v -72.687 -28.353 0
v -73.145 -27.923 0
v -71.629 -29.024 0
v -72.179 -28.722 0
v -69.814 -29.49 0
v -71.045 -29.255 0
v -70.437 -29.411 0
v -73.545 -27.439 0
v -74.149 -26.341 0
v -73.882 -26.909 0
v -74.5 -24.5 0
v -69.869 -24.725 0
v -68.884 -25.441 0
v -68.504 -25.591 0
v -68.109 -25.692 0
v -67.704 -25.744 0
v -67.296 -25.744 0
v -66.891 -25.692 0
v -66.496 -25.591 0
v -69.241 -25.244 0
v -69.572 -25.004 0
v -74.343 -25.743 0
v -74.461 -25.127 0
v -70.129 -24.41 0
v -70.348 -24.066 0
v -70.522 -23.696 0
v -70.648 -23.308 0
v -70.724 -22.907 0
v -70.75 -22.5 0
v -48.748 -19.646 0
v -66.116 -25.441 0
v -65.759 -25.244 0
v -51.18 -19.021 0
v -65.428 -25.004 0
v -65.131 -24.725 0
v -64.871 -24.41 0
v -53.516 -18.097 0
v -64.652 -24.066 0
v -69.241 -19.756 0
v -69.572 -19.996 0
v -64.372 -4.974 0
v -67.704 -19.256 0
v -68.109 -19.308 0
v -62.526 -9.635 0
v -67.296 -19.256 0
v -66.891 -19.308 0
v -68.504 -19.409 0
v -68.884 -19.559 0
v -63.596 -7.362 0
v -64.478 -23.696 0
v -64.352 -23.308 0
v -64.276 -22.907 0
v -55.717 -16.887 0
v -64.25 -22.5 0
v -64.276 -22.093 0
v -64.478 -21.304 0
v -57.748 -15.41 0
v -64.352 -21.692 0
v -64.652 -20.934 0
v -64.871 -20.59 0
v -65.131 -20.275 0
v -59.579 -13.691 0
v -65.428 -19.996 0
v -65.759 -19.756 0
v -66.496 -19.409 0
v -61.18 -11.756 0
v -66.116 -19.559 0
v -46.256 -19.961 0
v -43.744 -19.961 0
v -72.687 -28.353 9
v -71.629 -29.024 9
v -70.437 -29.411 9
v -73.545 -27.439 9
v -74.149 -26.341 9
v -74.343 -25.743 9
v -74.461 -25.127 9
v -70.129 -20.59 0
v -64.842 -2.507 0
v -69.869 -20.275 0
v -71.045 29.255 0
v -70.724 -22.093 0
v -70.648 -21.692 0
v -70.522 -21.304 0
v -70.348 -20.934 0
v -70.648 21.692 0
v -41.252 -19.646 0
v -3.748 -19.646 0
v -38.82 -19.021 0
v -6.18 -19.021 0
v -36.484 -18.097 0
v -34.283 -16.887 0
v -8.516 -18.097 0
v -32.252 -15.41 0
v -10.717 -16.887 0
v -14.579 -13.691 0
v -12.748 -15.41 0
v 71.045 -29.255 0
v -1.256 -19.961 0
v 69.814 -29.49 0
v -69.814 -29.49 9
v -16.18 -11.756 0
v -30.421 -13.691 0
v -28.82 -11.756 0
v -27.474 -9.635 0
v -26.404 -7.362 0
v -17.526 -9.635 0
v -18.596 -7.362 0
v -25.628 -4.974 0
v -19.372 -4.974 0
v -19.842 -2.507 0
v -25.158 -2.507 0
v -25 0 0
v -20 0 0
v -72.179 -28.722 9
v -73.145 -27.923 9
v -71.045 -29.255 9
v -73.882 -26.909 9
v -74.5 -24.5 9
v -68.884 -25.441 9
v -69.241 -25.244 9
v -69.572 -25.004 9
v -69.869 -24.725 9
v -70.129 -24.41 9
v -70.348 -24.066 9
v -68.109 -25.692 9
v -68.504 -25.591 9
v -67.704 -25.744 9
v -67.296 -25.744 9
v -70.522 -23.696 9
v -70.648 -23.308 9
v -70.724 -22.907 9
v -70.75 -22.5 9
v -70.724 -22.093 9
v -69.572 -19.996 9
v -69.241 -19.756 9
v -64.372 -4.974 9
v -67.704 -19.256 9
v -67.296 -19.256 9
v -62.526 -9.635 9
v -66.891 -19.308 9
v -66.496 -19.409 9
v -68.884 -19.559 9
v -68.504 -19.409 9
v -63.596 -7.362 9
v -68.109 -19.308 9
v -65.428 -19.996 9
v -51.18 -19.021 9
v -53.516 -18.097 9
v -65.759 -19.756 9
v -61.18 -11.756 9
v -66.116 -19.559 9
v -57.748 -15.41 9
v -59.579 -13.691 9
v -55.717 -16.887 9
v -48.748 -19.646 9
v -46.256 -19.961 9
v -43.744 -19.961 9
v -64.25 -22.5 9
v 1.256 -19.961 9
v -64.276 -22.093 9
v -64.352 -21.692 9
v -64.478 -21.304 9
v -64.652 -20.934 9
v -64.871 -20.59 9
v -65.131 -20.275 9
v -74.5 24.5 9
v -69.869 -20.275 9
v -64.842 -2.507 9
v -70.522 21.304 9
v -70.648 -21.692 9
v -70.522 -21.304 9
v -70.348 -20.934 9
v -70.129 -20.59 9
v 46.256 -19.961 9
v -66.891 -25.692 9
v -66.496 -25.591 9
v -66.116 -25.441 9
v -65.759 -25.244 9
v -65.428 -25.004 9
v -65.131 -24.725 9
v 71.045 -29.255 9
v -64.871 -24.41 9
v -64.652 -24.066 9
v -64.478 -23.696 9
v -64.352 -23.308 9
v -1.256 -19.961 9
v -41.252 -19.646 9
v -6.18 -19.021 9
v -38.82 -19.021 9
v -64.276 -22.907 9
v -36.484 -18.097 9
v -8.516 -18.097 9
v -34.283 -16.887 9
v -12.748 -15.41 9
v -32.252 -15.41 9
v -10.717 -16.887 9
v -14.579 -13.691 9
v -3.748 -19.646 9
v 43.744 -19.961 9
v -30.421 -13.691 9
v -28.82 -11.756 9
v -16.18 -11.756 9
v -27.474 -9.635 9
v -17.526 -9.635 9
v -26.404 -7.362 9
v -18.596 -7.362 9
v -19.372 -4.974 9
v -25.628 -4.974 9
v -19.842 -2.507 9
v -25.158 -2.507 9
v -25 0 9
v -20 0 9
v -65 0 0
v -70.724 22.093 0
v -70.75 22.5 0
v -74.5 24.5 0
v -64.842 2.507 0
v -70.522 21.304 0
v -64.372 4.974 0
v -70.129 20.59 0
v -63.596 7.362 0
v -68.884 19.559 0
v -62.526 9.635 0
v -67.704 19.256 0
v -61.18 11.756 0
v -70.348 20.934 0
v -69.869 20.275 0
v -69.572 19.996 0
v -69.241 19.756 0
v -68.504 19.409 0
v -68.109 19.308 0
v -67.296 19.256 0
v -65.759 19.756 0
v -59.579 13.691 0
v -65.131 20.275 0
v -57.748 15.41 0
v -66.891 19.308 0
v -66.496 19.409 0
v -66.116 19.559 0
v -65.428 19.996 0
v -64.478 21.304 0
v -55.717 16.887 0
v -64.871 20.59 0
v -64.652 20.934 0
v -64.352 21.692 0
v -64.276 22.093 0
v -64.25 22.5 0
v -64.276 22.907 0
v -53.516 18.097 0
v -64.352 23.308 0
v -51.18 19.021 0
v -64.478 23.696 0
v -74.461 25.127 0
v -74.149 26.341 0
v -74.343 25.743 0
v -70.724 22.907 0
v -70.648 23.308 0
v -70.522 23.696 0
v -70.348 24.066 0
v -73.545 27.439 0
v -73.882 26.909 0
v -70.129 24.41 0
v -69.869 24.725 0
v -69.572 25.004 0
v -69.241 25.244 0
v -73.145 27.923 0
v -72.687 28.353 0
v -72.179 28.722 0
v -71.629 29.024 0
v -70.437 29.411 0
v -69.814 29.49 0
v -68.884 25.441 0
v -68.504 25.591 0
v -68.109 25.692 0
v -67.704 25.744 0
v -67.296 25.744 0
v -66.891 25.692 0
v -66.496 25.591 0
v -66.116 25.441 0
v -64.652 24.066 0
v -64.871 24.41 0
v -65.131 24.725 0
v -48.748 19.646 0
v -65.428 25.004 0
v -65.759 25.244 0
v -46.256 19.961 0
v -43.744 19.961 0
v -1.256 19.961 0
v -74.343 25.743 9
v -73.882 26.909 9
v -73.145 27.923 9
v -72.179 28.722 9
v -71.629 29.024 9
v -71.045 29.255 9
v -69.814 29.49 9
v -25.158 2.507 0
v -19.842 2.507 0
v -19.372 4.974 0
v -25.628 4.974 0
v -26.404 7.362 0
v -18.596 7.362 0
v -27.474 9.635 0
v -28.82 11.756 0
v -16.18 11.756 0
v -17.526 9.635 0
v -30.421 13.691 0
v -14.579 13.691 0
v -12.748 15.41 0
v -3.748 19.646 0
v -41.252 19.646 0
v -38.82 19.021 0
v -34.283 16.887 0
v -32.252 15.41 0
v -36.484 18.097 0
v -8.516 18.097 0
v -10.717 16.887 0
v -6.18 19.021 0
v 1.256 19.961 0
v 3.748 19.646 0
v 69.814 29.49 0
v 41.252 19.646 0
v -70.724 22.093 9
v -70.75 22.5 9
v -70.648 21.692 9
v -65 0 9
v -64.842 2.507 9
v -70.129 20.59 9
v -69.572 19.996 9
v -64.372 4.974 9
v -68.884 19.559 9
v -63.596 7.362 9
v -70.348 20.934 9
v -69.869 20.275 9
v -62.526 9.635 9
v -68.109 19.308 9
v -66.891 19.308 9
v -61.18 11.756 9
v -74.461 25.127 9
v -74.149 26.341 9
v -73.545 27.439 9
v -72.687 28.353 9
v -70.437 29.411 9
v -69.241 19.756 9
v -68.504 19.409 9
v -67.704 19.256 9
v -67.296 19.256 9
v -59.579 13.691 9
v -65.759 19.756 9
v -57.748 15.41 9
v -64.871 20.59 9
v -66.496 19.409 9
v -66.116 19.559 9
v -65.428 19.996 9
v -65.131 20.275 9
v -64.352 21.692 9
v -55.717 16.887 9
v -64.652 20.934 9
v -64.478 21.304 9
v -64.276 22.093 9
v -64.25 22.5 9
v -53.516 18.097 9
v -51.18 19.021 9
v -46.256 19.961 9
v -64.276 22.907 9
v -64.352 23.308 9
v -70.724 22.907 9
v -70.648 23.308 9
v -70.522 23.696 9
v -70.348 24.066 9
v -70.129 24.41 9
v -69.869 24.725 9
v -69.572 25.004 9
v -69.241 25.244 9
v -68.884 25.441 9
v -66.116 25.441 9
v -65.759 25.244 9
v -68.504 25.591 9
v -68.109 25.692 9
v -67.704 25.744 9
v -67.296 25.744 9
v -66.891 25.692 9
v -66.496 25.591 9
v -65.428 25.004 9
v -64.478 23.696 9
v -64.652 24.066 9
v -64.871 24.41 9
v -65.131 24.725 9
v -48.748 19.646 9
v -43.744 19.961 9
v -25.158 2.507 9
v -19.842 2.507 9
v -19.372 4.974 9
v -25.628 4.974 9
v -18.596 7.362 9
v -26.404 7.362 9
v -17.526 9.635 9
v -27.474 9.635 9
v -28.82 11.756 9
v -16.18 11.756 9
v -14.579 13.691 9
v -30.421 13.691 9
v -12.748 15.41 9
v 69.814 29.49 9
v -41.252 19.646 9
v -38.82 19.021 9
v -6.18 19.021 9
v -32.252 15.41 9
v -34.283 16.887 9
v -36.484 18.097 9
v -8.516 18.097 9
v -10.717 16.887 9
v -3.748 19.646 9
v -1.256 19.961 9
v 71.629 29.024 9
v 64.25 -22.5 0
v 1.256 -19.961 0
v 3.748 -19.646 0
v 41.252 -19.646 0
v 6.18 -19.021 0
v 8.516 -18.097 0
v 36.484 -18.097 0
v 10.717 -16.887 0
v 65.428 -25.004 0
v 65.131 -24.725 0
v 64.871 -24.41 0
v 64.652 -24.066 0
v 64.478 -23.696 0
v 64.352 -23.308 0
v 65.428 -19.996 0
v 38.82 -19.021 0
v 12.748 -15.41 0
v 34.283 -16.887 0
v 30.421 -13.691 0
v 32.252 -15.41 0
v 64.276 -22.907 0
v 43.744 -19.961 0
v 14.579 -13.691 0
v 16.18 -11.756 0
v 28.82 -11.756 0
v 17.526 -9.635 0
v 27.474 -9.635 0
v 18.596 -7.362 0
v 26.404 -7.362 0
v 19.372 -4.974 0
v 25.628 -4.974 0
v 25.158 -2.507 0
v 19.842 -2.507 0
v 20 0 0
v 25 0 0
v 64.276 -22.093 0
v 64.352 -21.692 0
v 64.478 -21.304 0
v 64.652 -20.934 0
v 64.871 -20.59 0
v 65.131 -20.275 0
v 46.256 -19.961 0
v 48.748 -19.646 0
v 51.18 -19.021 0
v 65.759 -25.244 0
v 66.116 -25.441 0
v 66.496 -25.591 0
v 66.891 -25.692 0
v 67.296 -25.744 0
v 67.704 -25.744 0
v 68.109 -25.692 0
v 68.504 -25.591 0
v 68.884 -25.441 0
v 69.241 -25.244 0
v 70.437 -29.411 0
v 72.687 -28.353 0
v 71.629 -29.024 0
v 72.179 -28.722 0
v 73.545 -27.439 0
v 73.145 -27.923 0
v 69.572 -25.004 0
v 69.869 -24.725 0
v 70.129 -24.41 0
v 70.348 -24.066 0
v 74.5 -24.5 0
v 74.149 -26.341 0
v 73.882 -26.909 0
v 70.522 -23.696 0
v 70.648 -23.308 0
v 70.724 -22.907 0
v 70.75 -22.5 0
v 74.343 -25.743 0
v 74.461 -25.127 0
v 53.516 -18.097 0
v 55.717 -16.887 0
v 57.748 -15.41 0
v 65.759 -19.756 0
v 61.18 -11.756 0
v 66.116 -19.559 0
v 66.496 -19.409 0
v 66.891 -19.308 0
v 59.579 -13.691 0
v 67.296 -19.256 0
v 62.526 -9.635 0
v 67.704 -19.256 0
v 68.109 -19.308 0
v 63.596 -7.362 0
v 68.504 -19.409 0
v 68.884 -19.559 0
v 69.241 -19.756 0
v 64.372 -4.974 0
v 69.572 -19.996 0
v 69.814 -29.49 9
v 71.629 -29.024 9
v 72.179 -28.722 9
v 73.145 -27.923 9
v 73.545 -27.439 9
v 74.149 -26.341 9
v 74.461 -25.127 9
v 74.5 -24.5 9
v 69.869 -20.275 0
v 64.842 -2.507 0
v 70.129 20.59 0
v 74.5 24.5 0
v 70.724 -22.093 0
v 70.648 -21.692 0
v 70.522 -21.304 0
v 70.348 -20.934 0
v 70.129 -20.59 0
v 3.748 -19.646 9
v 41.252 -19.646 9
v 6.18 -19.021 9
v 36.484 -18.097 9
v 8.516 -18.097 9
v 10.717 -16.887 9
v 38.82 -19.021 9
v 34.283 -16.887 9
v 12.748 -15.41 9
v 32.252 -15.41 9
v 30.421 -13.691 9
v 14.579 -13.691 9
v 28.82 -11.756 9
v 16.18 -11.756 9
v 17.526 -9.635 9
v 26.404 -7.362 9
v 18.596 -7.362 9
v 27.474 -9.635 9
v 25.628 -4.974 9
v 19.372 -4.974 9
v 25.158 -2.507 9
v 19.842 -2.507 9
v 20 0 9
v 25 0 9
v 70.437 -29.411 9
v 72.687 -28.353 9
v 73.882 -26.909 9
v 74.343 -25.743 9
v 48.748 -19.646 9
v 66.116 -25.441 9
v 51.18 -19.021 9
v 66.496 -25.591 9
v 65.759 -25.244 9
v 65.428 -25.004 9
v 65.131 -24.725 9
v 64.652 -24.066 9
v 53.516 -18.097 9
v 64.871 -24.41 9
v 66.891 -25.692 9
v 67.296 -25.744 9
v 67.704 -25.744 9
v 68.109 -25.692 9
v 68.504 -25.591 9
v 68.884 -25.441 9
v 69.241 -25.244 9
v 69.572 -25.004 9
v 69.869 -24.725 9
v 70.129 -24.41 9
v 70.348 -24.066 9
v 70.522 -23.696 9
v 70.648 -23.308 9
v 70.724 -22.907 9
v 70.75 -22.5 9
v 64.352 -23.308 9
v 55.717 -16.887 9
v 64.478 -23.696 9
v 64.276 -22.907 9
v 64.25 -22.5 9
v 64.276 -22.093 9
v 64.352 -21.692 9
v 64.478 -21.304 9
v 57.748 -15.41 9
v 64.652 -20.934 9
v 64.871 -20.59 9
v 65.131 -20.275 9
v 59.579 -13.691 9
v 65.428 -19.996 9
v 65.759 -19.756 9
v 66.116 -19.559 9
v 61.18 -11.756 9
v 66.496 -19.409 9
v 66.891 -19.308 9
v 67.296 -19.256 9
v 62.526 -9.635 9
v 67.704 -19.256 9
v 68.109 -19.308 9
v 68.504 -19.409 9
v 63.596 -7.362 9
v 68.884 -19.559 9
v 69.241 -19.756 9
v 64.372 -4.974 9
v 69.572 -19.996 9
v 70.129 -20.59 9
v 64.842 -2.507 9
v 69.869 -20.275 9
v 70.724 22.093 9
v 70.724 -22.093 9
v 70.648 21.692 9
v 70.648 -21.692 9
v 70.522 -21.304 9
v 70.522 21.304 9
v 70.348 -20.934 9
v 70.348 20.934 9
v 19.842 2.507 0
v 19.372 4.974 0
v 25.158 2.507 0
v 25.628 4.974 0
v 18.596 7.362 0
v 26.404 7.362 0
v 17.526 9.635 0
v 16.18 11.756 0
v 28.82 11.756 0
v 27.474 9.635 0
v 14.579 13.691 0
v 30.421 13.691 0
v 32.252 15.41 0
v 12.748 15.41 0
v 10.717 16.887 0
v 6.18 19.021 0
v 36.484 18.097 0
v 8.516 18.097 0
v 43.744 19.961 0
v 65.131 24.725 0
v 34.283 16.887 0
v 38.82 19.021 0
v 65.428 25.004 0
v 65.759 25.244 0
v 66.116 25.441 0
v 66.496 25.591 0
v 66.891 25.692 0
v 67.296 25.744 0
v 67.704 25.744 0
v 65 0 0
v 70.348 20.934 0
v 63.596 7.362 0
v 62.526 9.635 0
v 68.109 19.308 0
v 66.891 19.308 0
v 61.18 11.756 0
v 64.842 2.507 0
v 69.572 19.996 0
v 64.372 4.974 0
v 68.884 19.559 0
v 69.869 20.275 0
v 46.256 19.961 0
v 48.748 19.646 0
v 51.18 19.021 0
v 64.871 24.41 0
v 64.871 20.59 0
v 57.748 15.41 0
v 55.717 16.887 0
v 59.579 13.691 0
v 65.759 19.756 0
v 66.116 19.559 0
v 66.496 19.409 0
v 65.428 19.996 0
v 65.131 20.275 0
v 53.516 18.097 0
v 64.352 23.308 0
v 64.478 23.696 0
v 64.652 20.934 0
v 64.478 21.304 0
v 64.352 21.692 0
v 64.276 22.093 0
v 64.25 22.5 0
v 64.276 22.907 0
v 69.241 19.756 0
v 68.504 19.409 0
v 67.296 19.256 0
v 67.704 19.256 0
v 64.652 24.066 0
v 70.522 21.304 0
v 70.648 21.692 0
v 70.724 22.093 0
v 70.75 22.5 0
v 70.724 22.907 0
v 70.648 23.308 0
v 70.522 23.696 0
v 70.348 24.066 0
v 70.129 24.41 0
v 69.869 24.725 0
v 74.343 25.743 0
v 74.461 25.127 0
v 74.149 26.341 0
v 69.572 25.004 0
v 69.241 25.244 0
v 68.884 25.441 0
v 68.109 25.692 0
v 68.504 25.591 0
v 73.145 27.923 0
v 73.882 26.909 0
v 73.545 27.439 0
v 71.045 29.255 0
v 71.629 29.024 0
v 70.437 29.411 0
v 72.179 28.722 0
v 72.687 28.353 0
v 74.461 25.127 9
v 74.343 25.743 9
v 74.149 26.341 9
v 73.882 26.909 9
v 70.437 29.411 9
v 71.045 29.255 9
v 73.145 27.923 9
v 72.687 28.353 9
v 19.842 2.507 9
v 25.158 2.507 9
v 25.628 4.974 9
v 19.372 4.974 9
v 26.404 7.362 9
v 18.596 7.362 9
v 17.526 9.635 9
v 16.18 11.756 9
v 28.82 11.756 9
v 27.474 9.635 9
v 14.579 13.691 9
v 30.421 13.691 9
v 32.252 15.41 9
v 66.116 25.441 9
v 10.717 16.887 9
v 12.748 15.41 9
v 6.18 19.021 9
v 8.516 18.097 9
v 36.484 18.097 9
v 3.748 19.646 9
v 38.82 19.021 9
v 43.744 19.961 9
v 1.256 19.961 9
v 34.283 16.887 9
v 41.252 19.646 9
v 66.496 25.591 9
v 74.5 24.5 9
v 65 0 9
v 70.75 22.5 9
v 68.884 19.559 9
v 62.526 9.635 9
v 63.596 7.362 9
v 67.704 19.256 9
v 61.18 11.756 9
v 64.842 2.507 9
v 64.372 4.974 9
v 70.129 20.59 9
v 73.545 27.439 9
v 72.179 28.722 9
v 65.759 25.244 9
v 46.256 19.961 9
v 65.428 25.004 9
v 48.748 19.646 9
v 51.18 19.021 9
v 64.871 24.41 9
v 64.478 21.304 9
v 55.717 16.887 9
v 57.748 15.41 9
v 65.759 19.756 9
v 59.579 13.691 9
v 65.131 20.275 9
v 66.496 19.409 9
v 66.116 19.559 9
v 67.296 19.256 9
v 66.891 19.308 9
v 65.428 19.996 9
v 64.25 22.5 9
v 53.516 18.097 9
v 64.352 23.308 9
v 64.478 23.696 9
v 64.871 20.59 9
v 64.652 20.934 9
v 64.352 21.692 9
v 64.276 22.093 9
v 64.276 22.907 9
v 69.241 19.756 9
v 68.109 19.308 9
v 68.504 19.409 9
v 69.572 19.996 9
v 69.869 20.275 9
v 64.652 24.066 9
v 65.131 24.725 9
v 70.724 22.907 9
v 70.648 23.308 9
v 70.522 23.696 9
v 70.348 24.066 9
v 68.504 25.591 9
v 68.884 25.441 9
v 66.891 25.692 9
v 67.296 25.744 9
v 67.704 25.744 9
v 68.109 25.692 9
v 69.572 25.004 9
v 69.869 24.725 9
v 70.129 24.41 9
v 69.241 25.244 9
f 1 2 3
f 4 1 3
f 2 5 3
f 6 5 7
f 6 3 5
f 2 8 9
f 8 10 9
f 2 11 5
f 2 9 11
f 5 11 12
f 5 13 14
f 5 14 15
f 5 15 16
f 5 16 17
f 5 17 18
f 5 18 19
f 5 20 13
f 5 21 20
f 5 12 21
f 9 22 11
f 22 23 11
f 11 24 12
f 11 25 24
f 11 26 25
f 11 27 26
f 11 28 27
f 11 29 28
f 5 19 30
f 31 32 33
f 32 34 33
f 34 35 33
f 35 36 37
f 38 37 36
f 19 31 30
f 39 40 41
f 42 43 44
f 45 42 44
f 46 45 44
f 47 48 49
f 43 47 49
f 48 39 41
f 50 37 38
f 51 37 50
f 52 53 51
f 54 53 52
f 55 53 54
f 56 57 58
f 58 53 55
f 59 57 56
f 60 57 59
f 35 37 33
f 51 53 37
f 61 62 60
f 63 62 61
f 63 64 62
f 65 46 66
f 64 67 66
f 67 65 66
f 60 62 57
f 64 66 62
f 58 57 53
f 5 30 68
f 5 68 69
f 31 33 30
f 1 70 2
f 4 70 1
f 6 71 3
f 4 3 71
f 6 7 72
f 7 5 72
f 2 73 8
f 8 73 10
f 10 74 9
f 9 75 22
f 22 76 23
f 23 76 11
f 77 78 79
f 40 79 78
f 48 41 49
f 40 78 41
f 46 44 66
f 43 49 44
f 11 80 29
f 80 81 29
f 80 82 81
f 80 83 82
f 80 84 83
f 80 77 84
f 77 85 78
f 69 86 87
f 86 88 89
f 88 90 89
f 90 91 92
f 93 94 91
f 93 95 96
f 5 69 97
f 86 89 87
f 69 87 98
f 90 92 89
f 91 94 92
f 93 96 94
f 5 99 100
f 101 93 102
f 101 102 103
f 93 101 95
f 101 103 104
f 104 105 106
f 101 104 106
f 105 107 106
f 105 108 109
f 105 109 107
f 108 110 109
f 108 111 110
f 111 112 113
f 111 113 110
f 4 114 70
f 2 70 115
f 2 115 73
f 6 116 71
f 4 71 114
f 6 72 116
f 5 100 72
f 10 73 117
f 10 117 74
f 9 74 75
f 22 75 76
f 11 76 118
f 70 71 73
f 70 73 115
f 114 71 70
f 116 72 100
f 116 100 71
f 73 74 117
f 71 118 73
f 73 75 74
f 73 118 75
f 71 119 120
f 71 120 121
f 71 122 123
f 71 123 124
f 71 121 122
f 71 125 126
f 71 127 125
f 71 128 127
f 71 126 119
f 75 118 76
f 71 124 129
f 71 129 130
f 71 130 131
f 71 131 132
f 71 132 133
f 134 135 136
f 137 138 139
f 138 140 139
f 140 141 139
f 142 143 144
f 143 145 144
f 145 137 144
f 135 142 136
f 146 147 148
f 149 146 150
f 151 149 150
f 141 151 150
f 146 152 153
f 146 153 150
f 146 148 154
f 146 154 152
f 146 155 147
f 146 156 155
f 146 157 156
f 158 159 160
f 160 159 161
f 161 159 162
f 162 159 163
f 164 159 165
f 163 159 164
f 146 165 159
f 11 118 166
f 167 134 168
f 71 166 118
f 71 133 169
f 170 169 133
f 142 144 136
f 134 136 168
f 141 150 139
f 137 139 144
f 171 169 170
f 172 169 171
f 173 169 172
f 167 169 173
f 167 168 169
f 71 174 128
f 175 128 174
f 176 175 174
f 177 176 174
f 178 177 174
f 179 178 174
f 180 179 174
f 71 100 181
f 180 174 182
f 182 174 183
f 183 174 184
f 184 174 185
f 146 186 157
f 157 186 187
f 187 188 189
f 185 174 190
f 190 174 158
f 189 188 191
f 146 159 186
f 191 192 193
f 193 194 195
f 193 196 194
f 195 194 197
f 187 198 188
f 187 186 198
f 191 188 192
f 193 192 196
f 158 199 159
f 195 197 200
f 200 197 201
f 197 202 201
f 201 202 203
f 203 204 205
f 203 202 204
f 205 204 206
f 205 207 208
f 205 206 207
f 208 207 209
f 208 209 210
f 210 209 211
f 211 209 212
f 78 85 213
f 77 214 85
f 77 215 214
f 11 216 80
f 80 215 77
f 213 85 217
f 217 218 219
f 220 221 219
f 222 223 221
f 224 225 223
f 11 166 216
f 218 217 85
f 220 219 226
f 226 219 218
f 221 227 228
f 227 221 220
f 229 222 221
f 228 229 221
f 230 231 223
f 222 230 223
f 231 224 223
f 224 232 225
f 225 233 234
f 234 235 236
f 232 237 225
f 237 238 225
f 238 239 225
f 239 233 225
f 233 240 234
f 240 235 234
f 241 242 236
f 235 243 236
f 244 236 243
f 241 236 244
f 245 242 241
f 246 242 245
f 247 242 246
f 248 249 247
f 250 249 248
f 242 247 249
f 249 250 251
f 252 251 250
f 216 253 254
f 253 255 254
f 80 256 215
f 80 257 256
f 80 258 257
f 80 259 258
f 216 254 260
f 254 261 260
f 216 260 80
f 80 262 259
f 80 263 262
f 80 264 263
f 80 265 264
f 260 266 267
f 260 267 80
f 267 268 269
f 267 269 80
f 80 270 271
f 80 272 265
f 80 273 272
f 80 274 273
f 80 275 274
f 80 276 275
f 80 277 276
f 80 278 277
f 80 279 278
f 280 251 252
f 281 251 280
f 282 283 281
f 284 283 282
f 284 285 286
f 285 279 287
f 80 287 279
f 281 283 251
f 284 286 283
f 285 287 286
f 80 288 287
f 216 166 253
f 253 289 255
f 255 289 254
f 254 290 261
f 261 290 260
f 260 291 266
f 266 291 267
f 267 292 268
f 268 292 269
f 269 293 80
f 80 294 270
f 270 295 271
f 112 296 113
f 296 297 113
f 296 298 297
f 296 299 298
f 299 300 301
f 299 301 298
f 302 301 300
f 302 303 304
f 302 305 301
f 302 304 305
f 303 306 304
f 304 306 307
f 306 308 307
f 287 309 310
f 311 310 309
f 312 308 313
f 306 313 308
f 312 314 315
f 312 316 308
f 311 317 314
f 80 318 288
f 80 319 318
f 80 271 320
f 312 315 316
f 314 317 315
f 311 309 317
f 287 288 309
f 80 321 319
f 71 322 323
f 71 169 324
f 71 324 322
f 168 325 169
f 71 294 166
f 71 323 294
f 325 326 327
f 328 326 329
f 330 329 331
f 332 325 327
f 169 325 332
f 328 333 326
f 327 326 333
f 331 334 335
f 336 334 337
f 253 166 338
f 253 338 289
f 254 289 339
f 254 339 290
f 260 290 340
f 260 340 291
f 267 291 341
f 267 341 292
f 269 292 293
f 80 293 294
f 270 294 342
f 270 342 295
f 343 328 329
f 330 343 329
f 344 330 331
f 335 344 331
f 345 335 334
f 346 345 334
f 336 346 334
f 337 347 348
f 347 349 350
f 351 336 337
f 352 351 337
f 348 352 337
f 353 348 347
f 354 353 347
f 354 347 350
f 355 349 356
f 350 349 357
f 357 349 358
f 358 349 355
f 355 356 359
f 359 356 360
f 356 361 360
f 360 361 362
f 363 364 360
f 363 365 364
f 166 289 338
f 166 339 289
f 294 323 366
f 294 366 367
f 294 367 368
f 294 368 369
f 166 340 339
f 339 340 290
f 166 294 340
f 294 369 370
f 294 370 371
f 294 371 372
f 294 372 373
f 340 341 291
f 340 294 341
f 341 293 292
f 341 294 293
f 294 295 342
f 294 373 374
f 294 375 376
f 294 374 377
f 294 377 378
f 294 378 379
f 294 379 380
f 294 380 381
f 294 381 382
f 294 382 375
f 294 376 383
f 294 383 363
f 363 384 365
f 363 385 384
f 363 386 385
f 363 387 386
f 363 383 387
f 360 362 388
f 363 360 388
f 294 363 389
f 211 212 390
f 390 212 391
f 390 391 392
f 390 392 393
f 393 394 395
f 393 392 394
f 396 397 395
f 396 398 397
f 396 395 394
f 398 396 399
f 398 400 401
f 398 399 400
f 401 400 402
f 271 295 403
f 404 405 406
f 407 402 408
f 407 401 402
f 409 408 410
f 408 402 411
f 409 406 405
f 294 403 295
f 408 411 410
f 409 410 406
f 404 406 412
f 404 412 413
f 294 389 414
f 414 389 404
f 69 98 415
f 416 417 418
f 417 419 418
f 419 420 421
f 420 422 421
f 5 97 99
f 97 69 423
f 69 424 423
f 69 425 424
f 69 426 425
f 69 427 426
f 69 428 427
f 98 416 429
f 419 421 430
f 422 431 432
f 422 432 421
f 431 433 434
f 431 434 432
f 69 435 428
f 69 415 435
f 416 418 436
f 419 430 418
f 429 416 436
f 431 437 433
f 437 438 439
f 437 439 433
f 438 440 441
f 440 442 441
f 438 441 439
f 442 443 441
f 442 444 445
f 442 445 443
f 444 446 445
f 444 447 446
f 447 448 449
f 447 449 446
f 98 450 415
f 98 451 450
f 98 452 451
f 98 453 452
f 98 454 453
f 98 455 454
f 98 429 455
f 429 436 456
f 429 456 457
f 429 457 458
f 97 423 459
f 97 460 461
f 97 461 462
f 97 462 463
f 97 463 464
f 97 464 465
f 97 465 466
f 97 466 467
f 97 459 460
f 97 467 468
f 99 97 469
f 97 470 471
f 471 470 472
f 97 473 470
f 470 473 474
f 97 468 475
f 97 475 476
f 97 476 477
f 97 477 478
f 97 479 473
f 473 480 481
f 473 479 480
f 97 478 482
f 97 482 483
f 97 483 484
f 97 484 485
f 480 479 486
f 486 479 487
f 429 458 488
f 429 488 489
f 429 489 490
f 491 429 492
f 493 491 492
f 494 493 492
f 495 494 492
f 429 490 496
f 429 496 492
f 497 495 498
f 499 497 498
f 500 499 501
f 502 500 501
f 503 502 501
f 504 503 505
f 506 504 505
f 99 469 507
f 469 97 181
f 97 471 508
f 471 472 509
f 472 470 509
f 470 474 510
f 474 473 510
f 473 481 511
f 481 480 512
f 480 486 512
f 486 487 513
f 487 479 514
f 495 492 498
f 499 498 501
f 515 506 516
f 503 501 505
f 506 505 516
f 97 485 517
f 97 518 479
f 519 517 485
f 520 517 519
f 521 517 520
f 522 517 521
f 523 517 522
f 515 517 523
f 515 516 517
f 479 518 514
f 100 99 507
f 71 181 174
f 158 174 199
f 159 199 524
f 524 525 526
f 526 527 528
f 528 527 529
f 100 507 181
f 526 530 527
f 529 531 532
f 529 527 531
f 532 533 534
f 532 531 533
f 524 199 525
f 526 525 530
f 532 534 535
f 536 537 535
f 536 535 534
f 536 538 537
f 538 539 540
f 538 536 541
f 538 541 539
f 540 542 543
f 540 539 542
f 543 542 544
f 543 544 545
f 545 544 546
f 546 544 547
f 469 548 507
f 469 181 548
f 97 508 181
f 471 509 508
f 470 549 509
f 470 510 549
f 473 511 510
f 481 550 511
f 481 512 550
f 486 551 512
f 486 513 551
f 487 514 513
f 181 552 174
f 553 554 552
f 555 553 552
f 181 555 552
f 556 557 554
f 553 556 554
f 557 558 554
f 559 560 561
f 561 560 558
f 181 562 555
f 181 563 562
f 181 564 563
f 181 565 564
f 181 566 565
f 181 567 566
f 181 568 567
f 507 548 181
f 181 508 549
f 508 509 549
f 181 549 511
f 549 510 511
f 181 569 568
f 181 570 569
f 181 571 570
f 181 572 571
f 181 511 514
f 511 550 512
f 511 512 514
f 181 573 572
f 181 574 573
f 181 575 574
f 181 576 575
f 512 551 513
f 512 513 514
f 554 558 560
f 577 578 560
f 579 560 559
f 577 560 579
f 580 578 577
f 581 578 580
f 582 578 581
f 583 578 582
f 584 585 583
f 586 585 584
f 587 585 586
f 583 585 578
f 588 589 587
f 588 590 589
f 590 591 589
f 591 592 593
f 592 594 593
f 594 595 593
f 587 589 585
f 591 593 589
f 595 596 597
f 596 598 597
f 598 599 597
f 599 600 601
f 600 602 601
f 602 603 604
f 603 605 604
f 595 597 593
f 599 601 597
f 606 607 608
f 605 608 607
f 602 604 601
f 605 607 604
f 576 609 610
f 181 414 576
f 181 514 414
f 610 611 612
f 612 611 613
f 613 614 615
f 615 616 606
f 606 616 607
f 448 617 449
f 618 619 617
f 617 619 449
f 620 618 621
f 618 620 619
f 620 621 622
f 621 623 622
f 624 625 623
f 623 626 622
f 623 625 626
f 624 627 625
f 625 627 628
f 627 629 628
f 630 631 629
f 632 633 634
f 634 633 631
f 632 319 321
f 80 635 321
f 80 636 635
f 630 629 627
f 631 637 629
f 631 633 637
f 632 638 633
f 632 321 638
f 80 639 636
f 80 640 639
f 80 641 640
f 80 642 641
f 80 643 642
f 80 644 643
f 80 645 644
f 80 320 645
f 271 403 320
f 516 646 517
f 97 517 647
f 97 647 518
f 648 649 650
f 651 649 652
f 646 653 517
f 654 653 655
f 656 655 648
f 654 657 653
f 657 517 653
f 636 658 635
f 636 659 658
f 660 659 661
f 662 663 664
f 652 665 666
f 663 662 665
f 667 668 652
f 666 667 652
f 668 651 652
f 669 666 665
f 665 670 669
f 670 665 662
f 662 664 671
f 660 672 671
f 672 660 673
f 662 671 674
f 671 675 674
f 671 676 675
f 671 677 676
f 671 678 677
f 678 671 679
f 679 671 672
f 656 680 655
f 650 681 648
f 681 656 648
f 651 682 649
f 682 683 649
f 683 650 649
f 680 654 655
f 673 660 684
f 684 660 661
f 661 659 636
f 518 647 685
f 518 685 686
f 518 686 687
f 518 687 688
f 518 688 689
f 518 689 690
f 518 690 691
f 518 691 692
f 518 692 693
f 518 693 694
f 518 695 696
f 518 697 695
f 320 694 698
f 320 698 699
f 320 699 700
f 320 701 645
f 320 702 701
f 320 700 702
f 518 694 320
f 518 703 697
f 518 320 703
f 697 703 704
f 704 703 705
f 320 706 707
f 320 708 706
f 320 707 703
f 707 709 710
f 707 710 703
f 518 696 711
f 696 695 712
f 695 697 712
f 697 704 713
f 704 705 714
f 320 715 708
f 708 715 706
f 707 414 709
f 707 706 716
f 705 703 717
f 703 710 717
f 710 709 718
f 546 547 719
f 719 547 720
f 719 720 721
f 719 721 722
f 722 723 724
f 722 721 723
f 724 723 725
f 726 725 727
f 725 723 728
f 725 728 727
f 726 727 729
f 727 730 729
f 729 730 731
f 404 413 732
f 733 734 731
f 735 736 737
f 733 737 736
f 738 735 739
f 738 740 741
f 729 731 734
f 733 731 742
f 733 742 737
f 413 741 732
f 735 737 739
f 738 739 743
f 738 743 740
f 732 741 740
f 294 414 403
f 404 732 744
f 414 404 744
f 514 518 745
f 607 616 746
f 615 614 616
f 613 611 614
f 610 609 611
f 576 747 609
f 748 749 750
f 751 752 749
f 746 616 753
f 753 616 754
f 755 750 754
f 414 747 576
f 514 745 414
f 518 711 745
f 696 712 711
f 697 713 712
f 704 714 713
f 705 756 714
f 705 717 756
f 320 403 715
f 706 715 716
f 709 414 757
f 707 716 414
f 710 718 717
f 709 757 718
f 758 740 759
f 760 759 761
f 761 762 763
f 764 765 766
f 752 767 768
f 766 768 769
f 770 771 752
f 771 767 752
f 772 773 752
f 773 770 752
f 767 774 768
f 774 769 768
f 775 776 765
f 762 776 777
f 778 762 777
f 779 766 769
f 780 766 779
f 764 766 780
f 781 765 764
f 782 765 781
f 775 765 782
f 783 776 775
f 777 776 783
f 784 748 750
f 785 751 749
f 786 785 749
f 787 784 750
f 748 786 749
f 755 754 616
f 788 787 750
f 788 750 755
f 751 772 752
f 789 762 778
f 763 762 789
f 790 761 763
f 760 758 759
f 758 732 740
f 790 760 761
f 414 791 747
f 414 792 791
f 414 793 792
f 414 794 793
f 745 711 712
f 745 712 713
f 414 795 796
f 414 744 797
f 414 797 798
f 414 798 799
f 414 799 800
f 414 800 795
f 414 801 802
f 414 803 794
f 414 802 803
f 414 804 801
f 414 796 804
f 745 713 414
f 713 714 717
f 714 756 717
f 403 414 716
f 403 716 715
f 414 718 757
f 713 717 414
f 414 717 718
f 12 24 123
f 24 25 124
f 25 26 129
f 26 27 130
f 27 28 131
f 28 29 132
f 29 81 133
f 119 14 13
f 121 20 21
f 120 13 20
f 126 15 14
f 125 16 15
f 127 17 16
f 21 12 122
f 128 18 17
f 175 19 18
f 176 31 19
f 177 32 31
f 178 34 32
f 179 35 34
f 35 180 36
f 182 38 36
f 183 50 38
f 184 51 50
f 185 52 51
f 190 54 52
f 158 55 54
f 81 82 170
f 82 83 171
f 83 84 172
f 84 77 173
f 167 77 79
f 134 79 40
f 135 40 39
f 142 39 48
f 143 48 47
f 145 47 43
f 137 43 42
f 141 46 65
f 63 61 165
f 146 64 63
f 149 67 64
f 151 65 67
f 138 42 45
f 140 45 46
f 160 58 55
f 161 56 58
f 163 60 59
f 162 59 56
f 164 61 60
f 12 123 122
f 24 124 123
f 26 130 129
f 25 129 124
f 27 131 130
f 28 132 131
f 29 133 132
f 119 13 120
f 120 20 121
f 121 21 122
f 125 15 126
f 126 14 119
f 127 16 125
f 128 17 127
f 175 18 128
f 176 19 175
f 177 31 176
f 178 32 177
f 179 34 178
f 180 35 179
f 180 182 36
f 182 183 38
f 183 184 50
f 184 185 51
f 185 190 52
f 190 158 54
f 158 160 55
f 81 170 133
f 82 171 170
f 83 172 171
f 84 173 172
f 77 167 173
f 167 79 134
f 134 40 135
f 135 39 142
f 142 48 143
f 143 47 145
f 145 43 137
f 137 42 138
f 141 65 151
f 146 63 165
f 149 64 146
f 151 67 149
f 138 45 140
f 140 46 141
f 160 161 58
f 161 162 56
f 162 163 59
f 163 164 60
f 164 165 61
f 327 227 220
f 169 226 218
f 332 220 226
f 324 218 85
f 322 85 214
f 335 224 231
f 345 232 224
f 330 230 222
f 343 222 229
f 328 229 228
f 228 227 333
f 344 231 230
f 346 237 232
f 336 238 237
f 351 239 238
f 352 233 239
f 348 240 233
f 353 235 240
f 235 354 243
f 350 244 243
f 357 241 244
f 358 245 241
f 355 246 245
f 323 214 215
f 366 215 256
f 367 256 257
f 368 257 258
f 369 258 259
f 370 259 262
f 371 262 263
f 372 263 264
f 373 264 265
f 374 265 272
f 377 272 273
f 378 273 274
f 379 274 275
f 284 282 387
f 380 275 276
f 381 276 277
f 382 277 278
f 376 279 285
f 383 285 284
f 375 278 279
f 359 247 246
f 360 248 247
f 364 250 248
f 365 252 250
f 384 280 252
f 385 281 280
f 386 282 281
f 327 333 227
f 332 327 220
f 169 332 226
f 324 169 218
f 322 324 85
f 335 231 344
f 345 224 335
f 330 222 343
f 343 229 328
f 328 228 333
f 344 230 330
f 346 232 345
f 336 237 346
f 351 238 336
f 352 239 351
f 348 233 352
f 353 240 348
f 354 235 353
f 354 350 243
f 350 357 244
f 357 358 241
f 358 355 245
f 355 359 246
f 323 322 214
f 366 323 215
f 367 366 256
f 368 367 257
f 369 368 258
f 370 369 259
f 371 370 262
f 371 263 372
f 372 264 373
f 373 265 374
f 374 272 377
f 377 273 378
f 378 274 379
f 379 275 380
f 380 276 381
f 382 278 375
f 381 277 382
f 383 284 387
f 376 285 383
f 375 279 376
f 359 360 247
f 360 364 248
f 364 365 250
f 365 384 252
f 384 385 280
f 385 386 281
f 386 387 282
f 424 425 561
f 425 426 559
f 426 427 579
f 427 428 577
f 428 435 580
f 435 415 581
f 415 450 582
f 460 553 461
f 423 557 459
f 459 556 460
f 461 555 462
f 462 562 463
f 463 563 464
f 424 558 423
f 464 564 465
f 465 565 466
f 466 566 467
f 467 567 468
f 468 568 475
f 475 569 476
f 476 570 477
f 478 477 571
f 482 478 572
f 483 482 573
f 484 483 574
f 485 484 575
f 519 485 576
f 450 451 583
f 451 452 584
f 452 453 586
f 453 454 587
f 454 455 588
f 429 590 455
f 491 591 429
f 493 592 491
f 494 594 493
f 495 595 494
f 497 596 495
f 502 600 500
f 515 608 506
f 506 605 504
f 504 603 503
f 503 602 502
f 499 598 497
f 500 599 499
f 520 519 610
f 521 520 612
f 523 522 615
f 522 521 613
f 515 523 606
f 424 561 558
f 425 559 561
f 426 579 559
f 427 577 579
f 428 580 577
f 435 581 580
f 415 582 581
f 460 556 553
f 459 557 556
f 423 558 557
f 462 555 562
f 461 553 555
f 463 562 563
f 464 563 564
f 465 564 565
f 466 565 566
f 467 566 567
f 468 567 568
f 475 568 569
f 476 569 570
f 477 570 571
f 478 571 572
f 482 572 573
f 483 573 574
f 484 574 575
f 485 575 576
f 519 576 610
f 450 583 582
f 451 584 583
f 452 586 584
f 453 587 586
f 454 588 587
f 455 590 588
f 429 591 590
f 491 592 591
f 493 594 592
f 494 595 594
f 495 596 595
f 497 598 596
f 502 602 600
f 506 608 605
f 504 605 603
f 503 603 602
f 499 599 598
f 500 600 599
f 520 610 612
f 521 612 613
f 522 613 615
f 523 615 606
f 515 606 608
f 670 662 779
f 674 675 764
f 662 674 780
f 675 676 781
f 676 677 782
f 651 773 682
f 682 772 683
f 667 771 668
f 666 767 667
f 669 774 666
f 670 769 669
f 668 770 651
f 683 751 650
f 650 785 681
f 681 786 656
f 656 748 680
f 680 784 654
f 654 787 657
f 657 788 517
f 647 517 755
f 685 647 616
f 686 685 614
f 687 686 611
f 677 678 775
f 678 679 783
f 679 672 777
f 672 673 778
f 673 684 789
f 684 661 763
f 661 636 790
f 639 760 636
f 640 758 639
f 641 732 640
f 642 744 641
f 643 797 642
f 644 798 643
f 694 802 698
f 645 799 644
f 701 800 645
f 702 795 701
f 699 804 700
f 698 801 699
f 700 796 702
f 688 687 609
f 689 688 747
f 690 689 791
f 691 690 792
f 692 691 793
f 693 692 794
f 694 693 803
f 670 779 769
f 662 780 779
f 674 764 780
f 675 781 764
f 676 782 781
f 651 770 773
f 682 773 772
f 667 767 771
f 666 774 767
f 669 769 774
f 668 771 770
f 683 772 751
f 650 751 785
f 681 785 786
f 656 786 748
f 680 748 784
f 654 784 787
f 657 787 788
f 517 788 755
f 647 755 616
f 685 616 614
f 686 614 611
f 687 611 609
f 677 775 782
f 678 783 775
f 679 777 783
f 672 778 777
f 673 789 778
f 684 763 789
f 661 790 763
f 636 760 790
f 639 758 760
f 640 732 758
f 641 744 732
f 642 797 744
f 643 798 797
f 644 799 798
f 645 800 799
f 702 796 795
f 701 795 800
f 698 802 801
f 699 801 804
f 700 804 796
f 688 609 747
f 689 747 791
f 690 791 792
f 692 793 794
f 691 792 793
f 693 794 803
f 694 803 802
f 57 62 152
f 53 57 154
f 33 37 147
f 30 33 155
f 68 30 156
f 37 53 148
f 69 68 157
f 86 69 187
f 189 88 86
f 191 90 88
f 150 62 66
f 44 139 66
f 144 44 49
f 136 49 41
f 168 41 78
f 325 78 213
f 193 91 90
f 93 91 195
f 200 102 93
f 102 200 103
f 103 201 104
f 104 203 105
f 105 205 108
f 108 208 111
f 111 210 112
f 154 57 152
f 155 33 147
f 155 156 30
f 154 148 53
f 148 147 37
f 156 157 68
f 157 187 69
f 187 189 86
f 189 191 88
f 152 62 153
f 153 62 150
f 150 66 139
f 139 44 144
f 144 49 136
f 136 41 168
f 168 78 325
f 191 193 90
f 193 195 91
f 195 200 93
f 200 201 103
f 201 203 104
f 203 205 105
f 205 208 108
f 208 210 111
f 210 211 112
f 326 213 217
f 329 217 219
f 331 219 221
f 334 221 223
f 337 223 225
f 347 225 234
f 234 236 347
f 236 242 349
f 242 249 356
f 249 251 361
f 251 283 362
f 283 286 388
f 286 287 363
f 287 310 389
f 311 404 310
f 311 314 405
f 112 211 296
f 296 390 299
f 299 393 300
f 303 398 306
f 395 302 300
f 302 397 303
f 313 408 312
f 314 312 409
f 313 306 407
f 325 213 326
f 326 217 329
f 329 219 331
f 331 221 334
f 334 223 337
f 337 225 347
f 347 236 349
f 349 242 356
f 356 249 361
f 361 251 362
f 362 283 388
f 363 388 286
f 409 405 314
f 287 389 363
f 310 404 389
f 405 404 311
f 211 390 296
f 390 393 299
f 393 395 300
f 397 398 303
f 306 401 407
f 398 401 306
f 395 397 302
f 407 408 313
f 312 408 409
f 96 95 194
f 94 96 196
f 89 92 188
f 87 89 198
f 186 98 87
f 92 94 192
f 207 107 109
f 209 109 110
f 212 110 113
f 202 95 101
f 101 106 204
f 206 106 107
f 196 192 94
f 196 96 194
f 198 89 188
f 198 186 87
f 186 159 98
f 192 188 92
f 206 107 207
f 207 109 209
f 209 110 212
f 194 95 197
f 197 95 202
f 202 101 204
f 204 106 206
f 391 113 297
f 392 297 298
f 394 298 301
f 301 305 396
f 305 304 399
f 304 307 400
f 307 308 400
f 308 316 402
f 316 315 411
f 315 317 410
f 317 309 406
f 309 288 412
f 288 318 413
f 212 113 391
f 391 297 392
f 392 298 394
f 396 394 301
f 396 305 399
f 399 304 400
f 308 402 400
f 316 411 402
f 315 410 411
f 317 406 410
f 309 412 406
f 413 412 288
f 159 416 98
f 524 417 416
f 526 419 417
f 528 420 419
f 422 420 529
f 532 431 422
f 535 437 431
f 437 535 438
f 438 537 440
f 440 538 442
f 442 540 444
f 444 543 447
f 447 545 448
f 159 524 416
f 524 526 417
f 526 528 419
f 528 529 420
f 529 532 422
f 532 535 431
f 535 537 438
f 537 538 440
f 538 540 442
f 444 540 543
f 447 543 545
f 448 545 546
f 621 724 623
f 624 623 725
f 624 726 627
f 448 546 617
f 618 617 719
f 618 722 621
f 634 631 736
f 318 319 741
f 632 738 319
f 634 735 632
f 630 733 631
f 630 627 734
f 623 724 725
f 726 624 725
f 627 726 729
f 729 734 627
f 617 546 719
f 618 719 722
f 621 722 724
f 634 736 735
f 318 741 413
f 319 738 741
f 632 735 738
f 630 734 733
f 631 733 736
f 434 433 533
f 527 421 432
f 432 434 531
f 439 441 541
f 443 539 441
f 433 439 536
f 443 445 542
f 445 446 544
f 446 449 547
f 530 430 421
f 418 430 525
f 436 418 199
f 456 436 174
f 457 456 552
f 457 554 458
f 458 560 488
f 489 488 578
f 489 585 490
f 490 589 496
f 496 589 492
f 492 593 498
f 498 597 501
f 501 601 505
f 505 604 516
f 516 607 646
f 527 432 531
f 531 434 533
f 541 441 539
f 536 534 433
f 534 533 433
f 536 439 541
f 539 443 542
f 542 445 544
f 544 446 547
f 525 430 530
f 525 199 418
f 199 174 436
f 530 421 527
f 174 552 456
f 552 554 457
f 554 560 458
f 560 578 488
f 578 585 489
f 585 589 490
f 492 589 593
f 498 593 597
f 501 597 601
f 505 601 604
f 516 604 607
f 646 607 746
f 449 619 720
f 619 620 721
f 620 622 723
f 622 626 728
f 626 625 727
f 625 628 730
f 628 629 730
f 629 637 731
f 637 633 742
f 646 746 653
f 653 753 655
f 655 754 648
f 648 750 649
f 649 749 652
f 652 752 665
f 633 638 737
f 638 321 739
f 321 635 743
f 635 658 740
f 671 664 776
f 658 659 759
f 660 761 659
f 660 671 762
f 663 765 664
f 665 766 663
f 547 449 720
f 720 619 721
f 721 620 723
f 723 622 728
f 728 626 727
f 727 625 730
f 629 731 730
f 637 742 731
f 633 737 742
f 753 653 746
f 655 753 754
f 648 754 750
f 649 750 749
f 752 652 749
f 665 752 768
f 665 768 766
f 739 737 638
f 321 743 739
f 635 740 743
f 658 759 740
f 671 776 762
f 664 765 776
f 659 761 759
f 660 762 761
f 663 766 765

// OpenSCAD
$fn = 50;

difference() {
	union() {
		hull() {
			translate(v = [-69.5, 24.5, 0]) {
				cylinder(h = 9, r = 5);
			}
			translate(v = [69.5, 24.5, 0]) {
				cylinder(h = 9, r = 5);
			}
			translate(v = [-69.5, -24.5, 0]) {
				cylinder(h = 9, r = 5);
			}
			translate(v = [69.5, -24.5, 0]) {
				cylinder(h = 9, r = 5);
			}
		}
	}
	union() {
		translate(v = [-67.5, -22.5, -100.0]) {
			cylinder(h = 200, r = 3.25);
		}
		translate(v = [-67.5, 22.5, -100.0]) {
			cylinder(h = 200, r = 3.25);
		}
		translate(v = [67.5, -22.5, -100.0]) {
			cylinder(h = 200, r = 3.25);
		}
		translate(v = [67.5, 22.5, -100.0]) {
			cylinder(h = 200, r = 3.25);
		}
		translate(v = [-67.5, -22.5, -100.0]) {
			cylinder(h = 200, r = 1.8);
		}
		translate(v = [-67.5, 22.5, -100.0]) {
			cylinder(h = 200, r = 1.8);
		}
		translate(v = [67.5, -22.5, -100.0]) {
			cylinder(h = 200, r = 1.8);
		}
		translate(v = [67.5, 22.5, -100.0]) {
			cylinder(h = 200, r = 1.8);
		}
		translate(v = [-45.0, 0, 0.0]) {
			cylinder(h = 9, r = 20.0);
		}
		cylinder(h = 9, r = 20.0);
		translate(v = [45.0, 0, 0.0]) {
			cylinder(h = 9, r = 20.0);
		}
	}
}
